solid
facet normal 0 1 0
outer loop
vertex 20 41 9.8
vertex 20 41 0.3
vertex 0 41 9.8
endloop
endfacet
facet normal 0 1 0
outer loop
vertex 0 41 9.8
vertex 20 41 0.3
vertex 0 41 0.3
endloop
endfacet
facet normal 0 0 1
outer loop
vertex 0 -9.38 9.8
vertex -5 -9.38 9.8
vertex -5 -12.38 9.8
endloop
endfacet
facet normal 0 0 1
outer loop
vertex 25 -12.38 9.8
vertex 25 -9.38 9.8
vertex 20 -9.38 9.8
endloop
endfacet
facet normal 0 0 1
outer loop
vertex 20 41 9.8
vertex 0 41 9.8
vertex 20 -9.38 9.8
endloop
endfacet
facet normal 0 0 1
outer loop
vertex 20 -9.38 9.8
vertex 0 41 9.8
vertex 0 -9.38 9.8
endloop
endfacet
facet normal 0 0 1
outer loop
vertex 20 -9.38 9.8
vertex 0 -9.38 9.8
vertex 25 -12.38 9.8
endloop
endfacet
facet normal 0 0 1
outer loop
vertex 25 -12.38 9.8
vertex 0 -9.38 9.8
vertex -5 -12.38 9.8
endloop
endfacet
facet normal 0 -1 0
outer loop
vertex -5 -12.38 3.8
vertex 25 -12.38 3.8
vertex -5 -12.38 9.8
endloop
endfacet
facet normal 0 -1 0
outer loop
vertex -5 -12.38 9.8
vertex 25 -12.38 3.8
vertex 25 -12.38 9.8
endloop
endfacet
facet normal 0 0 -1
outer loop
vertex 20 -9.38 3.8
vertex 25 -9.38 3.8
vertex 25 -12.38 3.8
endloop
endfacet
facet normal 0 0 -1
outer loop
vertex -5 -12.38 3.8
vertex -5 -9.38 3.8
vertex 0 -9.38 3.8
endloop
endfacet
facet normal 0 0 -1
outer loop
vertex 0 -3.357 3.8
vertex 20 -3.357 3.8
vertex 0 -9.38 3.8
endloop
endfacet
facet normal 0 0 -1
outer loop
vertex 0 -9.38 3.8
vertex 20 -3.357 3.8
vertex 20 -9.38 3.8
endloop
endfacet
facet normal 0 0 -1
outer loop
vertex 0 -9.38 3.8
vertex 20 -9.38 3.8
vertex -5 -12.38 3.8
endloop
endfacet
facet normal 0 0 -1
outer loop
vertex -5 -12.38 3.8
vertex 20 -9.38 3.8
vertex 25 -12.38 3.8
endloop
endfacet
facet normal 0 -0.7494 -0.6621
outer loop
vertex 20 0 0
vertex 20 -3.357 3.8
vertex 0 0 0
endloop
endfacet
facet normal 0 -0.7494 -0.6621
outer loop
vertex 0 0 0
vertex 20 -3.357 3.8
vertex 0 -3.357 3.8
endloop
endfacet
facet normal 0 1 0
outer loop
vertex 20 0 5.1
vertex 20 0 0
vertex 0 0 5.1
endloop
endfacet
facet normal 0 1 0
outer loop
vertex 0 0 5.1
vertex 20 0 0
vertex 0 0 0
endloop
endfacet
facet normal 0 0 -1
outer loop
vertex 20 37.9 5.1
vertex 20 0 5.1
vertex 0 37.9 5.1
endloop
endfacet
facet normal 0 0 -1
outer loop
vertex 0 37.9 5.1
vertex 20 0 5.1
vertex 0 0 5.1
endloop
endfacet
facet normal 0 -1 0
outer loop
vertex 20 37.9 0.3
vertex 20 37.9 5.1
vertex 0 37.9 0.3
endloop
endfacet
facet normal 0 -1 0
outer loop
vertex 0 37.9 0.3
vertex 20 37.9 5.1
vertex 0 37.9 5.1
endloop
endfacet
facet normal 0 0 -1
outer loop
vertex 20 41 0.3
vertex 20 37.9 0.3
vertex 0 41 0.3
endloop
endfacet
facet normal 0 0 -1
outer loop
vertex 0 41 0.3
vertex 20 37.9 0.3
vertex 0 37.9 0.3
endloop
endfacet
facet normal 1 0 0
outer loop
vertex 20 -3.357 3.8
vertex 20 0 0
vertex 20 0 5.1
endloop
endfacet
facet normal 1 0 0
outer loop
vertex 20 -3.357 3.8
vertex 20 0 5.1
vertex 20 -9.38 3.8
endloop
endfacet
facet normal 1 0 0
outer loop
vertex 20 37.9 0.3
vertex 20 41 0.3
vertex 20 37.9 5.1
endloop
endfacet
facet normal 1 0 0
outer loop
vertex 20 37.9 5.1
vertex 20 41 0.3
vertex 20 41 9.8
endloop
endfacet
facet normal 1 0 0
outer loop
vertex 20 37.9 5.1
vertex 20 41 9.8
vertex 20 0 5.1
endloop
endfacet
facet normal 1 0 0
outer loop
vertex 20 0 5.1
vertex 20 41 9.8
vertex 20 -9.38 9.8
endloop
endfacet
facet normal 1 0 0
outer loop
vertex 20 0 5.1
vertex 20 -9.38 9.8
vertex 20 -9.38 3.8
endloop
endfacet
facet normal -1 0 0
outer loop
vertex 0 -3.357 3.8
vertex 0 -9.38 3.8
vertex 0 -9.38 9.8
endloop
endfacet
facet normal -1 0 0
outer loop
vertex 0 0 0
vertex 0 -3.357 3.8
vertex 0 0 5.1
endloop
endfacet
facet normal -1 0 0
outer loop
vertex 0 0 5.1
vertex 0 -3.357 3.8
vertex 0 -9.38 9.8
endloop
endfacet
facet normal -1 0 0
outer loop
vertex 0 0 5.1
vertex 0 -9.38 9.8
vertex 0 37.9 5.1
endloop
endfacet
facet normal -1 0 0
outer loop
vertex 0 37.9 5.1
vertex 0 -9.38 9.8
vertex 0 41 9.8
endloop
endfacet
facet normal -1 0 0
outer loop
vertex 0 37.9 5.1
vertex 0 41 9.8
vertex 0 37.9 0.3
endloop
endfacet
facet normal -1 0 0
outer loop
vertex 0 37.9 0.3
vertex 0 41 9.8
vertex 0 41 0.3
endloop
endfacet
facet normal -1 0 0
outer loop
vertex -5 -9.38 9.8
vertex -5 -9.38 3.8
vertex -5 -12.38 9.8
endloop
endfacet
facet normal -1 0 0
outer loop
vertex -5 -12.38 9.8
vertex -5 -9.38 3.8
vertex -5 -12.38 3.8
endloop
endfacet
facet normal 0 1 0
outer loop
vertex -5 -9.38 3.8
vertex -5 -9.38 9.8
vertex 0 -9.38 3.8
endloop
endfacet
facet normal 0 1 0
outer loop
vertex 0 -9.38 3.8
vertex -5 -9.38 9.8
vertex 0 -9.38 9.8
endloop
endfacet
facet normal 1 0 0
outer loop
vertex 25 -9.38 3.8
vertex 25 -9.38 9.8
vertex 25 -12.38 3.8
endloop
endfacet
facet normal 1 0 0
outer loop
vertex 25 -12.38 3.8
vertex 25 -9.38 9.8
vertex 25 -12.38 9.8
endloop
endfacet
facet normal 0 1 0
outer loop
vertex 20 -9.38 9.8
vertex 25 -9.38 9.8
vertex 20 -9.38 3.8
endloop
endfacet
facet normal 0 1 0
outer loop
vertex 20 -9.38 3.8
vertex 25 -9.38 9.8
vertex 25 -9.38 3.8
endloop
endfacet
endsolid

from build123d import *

# Parameters (mm, degrees)
BOSS_EXTRUDE1_DEPTH = 20
SKETCH2_W           = 30
SKETCH2_H           = 6
BOSS_EXTRUDE2_DEPTH = 3


with BuildPart() as part:
    # Sketch1 → Boss-Extrude1 (new body)
    with BuildSketch(Plane(origin=(0, 0, 0), x_dir=(0, 0, -1), z_dir=(1, 0, 0))):
        Polygon((-9.8, -12.38), (-3.8, -12.38), (-3.8, -3.357082066), (0, 0), (-5.1, 0), (-5.1, 37.9), (-0.3, 37.9), (-0.3, 41), (-9.8, 41), align=None)
    extrude(amount=BOSS_EXTRUDE1_DEPTH)

    # Sketch2 → Boss-Extrude2 (add)
    with BuildSketch(Plane.XZ.offset(12.38)):
        with Locations((10, 6.8)):
            Rectangle(SKETCH2_W, SKETCH2_H)
    extrude(amount=-BOSS_EXTRUDE2_DEPTH)


solid = part.part
